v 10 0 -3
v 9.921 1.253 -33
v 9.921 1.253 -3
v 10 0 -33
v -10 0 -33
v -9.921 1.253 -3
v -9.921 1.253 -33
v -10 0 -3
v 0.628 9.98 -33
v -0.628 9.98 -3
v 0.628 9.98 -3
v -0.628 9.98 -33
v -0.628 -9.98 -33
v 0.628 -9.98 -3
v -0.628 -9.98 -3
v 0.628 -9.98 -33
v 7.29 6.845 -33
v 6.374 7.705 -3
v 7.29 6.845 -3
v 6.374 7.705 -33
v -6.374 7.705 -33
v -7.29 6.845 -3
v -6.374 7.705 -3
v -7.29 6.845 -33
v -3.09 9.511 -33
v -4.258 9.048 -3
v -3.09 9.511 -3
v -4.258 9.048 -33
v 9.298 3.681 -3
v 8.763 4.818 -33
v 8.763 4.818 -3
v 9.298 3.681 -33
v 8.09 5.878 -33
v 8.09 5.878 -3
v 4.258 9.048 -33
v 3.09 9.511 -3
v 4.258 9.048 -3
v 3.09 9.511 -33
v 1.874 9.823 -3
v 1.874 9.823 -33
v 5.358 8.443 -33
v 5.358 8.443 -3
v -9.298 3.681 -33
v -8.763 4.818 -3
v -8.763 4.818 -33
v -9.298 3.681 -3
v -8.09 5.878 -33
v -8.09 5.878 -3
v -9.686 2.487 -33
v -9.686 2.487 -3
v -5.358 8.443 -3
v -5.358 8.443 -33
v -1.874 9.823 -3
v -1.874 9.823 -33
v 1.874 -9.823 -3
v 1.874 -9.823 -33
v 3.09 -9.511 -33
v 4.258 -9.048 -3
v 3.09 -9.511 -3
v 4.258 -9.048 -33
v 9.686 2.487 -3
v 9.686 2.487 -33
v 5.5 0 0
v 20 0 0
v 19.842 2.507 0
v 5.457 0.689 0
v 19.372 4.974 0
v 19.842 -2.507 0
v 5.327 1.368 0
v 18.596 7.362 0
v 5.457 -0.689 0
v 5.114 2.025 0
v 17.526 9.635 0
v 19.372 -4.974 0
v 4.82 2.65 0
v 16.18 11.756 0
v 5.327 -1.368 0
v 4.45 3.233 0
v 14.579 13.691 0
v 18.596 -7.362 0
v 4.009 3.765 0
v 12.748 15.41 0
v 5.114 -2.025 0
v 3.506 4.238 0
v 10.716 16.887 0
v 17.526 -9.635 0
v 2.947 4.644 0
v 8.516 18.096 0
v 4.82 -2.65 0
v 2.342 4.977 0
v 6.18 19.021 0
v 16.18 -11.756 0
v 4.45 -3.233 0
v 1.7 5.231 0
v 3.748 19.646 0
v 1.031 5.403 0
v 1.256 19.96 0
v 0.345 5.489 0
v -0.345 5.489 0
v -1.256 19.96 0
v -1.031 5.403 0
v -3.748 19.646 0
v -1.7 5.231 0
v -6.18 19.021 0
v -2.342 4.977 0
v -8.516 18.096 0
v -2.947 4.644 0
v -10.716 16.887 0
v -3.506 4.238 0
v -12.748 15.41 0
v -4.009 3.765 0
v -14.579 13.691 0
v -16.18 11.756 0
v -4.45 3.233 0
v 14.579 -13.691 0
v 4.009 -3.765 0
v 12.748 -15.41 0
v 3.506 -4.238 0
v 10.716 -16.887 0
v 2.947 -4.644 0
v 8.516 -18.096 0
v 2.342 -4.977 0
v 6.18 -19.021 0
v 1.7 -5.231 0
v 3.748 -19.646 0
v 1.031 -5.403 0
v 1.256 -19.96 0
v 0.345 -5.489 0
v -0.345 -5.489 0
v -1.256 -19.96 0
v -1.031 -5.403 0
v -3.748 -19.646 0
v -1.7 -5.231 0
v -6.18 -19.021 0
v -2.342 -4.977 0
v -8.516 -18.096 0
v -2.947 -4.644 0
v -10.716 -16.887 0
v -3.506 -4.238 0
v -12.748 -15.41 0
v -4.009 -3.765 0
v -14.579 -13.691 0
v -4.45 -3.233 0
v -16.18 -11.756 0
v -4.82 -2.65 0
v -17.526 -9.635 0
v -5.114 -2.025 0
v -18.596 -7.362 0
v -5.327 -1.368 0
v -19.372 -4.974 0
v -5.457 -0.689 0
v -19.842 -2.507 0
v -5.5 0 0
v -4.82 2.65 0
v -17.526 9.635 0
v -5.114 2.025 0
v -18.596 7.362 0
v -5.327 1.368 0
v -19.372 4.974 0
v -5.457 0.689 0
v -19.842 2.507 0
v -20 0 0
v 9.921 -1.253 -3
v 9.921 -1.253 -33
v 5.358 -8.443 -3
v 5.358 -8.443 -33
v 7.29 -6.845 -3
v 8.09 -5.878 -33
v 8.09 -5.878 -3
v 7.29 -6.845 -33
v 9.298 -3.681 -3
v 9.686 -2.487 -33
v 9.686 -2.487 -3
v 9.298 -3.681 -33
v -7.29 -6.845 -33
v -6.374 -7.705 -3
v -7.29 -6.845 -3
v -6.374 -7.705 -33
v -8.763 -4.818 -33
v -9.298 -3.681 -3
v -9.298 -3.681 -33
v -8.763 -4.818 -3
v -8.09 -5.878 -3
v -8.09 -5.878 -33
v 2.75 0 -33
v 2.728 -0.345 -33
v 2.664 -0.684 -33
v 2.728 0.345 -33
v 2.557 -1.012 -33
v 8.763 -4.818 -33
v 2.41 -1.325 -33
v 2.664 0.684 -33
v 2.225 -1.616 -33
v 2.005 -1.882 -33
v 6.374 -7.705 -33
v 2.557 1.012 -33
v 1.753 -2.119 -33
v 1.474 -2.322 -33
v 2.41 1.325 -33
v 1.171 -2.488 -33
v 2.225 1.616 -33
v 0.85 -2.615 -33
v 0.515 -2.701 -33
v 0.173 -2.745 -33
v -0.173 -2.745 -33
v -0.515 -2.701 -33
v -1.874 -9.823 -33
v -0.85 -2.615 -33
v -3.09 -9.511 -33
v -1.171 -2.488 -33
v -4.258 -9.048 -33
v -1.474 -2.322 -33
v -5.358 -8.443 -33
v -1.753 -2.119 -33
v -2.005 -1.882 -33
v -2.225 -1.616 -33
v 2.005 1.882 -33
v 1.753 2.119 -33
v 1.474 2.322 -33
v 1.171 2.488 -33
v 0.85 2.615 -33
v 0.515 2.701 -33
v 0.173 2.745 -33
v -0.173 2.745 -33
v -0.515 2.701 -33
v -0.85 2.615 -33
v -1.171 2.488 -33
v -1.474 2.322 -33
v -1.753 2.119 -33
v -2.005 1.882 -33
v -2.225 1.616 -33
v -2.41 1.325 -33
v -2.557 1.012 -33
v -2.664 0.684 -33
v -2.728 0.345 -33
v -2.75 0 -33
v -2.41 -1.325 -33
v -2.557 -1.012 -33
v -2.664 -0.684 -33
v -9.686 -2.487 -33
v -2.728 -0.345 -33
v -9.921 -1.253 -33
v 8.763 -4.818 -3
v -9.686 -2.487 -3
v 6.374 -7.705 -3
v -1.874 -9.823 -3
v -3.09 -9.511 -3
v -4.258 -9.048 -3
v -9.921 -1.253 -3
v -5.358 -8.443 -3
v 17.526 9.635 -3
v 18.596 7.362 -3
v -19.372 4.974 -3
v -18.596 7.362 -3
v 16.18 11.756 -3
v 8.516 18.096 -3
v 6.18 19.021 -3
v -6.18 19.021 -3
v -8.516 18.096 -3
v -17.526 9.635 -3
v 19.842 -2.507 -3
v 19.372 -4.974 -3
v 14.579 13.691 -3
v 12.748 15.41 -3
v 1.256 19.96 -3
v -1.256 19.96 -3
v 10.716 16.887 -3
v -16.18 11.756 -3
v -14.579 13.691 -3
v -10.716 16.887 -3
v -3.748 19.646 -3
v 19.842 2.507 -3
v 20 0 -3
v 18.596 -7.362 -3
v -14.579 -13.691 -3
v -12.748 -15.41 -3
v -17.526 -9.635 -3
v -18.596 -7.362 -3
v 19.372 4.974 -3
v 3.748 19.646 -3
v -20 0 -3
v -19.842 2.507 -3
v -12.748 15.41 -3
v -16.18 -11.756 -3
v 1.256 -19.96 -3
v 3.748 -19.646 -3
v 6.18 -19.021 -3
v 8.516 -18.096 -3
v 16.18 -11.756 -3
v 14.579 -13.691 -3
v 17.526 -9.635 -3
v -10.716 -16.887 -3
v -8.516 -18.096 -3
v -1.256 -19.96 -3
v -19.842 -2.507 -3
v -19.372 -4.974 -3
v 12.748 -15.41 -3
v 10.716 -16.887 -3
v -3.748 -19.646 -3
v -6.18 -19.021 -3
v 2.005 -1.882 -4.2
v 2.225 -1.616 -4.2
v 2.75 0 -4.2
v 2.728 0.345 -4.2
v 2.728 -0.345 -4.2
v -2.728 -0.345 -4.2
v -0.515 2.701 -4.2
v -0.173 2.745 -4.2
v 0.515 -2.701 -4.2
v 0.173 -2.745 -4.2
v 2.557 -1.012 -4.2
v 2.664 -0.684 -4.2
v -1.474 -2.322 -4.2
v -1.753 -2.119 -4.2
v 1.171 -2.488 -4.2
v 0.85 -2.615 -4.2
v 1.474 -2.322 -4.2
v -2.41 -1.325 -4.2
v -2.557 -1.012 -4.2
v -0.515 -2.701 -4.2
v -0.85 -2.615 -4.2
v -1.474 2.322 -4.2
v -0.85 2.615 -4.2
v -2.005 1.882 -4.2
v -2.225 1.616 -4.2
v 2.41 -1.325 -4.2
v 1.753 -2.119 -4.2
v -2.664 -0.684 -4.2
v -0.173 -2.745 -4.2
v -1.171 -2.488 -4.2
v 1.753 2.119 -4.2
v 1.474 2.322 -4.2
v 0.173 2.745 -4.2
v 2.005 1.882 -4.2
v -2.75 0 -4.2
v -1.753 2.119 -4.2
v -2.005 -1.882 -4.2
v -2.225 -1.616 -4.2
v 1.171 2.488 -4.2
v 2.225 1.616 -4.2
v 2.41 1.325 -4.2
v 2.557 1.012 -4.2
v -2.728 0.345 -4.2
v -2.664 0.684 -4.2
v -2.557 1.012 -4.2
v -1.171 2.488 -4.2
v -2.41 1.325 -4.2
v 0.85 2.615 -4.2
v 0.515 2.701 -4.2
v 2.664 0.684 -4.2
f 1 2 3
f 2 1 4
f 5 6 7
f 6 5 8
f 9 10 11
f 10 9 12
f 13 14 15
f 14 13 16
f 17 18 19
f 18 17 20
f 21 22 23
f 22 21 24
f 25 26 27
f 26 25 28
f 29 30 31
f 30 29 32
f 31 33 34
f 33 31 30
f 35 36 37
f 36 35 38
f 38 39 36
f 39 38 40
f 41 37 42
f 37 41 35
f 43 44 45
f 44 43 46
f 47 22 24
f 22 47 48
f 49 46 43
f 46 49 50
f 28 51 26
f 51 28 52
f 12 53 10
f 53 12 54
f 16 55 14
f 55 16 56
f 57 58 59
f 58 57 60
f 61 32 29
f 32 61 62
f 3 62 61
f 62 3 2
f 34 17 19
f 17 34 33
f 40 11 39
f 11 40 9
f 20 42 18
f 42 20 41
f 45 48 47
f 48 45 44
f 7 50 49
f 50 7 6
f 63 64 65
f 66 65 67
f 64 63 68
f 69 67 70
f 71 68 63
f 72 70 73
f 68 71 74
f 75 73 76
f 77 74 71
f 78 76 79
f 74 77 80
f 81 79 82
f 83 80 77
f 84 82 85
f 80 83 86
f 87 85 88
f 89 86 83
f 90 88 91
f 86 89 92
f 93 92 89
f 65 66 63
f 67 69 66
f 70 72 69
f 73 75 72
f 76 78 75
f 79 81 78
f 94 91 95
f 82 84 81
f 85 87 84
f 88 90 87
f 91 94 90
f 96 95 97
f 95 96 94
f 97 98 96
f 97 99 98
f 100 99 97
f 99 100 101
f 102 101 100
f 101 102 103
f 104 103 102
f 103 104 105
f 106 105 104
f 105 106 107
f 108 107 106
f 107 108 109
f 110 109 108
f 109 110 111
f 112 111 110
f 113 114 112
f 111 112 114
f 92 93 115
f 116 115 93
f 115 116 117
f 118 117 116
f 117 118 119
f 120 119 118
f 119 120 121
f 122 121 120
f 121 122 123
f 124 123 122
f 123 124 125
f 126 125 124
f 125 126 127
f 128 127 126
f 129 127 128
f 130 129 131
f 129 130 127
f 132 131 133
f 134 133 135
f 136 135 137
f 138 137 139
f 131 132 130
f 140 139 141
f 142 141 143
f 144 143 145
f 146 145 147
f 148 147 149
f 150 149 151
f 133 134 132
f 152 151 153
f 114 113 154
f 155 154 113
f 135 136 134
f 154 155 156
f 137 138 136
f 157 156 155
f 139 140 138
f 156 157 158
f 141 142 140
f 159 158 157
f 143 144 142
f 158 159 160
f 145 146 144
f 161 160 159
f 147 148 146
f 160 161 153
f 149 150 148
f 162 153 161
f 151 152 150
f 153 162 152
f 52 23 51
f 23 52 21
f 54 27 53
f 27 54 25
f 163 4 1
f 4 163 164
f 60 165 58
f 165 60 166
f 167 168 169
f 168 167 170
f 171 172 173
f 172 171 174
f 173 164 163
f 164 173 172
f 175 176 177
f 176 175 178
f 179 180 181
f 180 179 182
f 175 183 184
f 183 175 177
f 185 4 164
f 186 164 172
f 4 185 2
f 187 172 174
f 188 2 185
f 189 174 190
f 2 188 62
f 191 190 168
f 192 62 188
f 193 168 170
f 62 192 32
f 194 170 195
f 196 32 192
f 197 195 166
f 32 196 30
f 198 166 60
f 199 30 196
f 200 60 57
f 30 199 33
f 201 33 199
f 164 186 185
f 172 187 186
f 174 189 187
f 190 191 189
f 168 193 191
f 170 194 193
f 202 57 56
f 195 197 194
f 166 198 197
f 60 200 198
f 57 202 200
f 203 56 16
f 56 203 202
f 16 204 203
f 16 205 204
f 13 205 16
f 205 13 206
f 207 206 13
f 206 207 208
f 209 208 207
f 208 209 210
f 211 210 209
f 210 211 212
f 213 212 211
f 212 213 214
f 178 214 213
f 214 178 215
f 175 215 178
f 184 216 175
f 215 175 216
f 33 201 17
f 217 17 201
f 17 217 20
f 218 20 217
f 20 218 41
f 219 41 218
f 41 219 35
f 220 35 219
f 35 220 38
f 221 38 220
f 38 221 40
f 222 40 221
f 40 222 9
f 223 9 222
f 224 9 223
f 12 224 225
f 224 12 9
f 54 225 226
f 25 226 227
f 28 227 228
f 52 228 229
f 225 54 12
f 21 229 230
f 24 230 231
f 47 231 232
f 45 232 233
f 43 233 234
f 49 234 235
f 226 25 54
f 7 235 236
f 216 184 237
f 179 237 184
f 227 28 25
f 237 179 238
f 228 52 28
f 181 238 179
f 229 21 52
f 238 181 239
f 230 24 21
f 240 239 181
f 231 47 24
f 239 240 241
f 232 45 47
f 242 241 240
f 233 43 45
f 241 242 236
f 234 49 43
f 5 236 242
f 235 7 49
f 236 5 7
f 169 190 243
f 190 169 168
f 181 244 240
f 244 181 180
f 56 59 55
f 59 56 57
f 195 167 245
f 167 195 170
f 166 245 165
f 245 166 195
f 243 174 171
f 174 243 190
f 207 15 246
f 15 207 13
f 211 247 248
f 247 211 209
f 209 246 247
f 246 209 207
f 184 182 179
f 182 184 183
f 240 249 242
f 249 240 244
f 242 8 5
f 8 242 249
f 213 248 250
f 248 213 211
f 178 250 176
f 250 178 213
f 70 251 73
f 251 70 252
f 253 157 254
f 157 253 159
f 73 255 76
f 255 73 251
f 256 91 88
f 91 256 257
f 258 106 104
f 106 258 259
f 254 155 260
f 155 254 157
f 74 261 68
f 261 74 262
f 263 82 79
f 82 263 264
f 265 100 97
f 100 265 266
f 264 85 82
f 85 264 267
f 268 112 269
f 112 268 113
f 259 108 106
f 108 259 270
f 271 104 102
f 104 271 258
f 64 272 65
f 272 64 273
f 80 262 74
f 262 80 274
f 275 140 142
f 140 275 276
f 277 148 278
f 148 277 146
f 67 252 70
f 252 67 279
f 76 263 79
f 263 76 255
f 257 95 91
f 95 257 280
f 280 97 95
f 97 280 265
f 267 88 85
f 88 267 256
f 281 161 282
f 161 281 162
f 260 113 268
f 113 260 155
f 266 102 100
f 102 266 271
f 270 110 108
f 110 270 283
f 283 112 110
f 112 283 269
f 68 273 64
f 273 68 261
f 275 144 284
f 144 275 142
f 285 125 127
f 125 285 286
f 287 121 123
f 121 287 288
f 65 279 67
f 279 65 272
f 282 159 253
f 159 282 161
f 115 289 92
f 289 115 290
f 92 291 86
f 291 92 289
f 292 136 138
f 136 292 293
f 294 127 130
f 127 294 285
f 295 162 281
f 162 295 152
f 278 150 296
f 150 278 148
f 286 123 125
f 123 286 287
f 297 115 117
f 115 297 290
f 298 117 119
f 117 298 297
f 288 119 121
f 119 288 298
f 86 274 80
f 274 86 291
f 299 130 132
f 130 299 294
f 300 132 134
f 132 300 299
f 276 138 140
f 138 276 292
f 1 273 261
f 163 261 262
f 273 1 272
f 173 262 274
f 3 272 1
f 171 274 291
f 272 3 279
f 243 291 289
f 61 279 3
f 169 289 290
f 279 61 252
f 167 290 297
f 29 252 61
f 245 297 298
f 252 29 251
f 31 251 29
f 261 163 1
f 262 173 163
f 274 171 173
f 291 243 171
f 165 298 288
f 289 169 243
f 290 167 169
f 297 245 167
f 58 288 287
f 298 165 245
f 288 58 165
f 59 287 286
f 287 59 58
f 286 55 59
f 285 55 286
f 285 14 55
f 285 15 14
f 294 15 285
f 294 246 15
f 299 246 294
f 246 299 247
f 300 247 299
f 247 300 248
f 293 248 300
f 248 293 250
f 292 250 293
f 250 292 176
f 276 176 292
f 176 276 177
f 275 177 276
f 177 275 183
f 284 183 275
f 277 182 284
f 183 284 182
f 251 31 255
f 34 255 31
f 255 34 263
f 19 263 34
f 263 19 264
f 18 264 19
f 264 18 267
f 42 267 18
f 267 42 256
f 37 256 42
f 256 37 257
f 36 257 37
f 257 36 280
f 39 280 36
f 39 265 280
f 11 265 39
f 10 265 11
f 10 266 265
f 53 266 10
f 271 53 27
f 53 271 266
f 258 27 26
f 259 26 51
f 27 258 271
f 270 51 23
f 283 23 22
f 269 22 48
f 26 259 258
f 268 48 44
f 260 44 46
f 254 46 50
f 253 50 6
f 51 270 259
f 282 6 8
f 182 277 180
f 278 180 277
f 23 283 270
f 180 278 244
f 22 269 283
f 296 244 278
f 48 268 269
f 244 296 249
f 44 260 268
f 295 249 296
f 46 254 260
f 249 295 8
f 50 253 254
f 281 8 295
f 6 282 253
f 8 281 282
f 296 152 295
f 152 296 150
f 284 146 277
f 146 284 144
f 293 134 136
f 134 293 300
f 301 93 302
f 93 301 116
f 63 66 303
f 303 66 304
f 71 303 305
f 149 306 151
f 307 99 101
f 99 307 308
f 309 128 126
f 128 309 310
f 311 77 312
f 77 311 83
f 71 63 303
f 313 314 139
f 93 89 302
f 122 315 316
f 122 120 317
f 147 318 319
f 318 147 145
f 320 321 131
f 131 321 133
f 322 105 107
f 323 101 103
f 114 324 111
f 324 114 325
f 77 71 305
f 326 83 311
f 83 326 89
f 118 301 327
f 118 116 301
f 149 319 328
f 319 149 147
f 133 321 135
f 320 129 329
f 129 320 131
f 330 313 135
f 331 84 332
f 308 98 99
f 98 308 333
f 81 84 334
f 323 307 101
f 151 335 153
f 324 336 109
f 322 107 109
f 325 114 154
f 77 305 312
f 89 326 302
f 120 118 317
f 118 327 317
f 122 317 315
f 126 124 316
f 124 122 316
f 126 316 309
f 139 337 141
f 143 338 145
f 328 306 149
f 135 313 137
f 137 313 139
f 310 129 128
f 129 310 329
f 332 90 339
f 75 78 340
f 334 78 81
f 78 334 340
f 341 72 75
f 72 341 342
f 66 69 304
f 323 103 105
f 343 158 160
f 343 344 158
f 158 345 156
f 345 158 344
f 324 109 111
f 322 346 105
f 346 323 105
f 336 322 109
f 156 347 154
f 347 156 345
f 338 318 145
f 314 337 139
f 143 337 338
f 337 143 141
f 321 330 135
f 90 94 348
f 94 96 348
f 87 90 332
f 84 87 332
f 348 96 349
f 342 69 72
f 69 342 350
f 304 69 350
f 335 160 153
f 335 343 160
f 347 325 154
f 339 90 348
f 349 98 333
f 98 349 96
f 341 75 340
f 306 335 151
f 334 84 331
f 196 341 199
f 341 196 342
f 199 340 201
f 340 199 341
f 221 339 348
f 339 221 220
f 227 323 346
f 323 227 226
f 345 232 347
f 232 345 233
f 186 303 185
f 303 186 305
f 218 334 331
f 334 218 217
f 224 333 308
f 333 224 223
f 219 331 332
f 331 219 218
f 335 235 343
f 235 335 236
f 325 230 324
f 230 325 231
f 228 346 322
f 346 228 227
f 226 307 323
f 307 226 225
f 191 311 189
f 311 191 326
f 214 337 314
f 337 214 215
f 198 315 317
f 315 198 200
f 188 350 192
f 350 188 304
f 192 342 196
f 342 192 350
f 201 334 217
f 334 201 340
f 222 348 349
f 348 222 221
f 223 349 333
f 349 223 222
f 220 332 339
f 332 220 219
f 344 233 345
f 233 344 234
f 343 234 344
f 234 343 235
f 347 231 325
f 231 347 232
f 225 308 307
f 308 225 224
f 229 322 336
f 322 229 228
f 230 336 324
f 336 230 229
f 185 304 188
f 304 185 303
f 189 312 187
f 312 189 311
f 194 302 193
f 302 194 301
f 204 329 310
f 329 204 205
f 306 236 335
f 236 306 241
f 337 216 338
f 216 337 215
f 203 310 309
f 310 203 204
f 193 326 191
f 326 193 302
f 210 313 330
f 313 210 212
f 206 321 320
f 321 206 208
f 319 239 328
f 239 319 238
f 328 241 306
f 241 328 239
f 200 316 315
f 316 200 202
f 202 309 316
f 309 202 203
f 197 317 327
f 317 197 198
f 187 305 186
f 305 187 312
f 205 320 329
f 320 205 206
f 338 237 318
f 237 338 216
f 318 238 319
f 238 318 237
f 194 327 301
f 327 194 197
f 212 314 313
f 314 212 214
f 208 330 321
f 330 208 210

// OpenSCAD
$fn = 50;


difference() {
	union() {
		translate(v = [0, 0, -33.0000000000]) {
			cylinder(h = 33, r = 10.0000000000);
		}
		translate(v = [0, 0, -3.0000000000]) {
			cylinder(h = 3, r = 20.0000000000);
		}
	}
	union() {
		translate(v = [0, 0, 0]) {
			rotate(a = [0, 0, 0]) {
				difference() {
					union() {
						#translate(v = [0, 0, -33.0000000000]) {
							cylinder(h = 33, r = 2.2500000000);
						}
						#translate(v = [0, 0, -4.2000000000]) {
							cylinder(h = 4.2000000000, r = 10.0000000000, r1 = 2.7500000000, r2 = 5.5000000000);
						}
						#translate(v = [0, 0, -33.0000000000]) {
							cylinder(h = 33, r = 2.7500000000);
						}
						#translate(v = [0, 0, -33.0000000000]) {
							cylinder(h = 33, r = 2.2500000000);
						}
					}
					union();
				}
			}
		}
	}
}
